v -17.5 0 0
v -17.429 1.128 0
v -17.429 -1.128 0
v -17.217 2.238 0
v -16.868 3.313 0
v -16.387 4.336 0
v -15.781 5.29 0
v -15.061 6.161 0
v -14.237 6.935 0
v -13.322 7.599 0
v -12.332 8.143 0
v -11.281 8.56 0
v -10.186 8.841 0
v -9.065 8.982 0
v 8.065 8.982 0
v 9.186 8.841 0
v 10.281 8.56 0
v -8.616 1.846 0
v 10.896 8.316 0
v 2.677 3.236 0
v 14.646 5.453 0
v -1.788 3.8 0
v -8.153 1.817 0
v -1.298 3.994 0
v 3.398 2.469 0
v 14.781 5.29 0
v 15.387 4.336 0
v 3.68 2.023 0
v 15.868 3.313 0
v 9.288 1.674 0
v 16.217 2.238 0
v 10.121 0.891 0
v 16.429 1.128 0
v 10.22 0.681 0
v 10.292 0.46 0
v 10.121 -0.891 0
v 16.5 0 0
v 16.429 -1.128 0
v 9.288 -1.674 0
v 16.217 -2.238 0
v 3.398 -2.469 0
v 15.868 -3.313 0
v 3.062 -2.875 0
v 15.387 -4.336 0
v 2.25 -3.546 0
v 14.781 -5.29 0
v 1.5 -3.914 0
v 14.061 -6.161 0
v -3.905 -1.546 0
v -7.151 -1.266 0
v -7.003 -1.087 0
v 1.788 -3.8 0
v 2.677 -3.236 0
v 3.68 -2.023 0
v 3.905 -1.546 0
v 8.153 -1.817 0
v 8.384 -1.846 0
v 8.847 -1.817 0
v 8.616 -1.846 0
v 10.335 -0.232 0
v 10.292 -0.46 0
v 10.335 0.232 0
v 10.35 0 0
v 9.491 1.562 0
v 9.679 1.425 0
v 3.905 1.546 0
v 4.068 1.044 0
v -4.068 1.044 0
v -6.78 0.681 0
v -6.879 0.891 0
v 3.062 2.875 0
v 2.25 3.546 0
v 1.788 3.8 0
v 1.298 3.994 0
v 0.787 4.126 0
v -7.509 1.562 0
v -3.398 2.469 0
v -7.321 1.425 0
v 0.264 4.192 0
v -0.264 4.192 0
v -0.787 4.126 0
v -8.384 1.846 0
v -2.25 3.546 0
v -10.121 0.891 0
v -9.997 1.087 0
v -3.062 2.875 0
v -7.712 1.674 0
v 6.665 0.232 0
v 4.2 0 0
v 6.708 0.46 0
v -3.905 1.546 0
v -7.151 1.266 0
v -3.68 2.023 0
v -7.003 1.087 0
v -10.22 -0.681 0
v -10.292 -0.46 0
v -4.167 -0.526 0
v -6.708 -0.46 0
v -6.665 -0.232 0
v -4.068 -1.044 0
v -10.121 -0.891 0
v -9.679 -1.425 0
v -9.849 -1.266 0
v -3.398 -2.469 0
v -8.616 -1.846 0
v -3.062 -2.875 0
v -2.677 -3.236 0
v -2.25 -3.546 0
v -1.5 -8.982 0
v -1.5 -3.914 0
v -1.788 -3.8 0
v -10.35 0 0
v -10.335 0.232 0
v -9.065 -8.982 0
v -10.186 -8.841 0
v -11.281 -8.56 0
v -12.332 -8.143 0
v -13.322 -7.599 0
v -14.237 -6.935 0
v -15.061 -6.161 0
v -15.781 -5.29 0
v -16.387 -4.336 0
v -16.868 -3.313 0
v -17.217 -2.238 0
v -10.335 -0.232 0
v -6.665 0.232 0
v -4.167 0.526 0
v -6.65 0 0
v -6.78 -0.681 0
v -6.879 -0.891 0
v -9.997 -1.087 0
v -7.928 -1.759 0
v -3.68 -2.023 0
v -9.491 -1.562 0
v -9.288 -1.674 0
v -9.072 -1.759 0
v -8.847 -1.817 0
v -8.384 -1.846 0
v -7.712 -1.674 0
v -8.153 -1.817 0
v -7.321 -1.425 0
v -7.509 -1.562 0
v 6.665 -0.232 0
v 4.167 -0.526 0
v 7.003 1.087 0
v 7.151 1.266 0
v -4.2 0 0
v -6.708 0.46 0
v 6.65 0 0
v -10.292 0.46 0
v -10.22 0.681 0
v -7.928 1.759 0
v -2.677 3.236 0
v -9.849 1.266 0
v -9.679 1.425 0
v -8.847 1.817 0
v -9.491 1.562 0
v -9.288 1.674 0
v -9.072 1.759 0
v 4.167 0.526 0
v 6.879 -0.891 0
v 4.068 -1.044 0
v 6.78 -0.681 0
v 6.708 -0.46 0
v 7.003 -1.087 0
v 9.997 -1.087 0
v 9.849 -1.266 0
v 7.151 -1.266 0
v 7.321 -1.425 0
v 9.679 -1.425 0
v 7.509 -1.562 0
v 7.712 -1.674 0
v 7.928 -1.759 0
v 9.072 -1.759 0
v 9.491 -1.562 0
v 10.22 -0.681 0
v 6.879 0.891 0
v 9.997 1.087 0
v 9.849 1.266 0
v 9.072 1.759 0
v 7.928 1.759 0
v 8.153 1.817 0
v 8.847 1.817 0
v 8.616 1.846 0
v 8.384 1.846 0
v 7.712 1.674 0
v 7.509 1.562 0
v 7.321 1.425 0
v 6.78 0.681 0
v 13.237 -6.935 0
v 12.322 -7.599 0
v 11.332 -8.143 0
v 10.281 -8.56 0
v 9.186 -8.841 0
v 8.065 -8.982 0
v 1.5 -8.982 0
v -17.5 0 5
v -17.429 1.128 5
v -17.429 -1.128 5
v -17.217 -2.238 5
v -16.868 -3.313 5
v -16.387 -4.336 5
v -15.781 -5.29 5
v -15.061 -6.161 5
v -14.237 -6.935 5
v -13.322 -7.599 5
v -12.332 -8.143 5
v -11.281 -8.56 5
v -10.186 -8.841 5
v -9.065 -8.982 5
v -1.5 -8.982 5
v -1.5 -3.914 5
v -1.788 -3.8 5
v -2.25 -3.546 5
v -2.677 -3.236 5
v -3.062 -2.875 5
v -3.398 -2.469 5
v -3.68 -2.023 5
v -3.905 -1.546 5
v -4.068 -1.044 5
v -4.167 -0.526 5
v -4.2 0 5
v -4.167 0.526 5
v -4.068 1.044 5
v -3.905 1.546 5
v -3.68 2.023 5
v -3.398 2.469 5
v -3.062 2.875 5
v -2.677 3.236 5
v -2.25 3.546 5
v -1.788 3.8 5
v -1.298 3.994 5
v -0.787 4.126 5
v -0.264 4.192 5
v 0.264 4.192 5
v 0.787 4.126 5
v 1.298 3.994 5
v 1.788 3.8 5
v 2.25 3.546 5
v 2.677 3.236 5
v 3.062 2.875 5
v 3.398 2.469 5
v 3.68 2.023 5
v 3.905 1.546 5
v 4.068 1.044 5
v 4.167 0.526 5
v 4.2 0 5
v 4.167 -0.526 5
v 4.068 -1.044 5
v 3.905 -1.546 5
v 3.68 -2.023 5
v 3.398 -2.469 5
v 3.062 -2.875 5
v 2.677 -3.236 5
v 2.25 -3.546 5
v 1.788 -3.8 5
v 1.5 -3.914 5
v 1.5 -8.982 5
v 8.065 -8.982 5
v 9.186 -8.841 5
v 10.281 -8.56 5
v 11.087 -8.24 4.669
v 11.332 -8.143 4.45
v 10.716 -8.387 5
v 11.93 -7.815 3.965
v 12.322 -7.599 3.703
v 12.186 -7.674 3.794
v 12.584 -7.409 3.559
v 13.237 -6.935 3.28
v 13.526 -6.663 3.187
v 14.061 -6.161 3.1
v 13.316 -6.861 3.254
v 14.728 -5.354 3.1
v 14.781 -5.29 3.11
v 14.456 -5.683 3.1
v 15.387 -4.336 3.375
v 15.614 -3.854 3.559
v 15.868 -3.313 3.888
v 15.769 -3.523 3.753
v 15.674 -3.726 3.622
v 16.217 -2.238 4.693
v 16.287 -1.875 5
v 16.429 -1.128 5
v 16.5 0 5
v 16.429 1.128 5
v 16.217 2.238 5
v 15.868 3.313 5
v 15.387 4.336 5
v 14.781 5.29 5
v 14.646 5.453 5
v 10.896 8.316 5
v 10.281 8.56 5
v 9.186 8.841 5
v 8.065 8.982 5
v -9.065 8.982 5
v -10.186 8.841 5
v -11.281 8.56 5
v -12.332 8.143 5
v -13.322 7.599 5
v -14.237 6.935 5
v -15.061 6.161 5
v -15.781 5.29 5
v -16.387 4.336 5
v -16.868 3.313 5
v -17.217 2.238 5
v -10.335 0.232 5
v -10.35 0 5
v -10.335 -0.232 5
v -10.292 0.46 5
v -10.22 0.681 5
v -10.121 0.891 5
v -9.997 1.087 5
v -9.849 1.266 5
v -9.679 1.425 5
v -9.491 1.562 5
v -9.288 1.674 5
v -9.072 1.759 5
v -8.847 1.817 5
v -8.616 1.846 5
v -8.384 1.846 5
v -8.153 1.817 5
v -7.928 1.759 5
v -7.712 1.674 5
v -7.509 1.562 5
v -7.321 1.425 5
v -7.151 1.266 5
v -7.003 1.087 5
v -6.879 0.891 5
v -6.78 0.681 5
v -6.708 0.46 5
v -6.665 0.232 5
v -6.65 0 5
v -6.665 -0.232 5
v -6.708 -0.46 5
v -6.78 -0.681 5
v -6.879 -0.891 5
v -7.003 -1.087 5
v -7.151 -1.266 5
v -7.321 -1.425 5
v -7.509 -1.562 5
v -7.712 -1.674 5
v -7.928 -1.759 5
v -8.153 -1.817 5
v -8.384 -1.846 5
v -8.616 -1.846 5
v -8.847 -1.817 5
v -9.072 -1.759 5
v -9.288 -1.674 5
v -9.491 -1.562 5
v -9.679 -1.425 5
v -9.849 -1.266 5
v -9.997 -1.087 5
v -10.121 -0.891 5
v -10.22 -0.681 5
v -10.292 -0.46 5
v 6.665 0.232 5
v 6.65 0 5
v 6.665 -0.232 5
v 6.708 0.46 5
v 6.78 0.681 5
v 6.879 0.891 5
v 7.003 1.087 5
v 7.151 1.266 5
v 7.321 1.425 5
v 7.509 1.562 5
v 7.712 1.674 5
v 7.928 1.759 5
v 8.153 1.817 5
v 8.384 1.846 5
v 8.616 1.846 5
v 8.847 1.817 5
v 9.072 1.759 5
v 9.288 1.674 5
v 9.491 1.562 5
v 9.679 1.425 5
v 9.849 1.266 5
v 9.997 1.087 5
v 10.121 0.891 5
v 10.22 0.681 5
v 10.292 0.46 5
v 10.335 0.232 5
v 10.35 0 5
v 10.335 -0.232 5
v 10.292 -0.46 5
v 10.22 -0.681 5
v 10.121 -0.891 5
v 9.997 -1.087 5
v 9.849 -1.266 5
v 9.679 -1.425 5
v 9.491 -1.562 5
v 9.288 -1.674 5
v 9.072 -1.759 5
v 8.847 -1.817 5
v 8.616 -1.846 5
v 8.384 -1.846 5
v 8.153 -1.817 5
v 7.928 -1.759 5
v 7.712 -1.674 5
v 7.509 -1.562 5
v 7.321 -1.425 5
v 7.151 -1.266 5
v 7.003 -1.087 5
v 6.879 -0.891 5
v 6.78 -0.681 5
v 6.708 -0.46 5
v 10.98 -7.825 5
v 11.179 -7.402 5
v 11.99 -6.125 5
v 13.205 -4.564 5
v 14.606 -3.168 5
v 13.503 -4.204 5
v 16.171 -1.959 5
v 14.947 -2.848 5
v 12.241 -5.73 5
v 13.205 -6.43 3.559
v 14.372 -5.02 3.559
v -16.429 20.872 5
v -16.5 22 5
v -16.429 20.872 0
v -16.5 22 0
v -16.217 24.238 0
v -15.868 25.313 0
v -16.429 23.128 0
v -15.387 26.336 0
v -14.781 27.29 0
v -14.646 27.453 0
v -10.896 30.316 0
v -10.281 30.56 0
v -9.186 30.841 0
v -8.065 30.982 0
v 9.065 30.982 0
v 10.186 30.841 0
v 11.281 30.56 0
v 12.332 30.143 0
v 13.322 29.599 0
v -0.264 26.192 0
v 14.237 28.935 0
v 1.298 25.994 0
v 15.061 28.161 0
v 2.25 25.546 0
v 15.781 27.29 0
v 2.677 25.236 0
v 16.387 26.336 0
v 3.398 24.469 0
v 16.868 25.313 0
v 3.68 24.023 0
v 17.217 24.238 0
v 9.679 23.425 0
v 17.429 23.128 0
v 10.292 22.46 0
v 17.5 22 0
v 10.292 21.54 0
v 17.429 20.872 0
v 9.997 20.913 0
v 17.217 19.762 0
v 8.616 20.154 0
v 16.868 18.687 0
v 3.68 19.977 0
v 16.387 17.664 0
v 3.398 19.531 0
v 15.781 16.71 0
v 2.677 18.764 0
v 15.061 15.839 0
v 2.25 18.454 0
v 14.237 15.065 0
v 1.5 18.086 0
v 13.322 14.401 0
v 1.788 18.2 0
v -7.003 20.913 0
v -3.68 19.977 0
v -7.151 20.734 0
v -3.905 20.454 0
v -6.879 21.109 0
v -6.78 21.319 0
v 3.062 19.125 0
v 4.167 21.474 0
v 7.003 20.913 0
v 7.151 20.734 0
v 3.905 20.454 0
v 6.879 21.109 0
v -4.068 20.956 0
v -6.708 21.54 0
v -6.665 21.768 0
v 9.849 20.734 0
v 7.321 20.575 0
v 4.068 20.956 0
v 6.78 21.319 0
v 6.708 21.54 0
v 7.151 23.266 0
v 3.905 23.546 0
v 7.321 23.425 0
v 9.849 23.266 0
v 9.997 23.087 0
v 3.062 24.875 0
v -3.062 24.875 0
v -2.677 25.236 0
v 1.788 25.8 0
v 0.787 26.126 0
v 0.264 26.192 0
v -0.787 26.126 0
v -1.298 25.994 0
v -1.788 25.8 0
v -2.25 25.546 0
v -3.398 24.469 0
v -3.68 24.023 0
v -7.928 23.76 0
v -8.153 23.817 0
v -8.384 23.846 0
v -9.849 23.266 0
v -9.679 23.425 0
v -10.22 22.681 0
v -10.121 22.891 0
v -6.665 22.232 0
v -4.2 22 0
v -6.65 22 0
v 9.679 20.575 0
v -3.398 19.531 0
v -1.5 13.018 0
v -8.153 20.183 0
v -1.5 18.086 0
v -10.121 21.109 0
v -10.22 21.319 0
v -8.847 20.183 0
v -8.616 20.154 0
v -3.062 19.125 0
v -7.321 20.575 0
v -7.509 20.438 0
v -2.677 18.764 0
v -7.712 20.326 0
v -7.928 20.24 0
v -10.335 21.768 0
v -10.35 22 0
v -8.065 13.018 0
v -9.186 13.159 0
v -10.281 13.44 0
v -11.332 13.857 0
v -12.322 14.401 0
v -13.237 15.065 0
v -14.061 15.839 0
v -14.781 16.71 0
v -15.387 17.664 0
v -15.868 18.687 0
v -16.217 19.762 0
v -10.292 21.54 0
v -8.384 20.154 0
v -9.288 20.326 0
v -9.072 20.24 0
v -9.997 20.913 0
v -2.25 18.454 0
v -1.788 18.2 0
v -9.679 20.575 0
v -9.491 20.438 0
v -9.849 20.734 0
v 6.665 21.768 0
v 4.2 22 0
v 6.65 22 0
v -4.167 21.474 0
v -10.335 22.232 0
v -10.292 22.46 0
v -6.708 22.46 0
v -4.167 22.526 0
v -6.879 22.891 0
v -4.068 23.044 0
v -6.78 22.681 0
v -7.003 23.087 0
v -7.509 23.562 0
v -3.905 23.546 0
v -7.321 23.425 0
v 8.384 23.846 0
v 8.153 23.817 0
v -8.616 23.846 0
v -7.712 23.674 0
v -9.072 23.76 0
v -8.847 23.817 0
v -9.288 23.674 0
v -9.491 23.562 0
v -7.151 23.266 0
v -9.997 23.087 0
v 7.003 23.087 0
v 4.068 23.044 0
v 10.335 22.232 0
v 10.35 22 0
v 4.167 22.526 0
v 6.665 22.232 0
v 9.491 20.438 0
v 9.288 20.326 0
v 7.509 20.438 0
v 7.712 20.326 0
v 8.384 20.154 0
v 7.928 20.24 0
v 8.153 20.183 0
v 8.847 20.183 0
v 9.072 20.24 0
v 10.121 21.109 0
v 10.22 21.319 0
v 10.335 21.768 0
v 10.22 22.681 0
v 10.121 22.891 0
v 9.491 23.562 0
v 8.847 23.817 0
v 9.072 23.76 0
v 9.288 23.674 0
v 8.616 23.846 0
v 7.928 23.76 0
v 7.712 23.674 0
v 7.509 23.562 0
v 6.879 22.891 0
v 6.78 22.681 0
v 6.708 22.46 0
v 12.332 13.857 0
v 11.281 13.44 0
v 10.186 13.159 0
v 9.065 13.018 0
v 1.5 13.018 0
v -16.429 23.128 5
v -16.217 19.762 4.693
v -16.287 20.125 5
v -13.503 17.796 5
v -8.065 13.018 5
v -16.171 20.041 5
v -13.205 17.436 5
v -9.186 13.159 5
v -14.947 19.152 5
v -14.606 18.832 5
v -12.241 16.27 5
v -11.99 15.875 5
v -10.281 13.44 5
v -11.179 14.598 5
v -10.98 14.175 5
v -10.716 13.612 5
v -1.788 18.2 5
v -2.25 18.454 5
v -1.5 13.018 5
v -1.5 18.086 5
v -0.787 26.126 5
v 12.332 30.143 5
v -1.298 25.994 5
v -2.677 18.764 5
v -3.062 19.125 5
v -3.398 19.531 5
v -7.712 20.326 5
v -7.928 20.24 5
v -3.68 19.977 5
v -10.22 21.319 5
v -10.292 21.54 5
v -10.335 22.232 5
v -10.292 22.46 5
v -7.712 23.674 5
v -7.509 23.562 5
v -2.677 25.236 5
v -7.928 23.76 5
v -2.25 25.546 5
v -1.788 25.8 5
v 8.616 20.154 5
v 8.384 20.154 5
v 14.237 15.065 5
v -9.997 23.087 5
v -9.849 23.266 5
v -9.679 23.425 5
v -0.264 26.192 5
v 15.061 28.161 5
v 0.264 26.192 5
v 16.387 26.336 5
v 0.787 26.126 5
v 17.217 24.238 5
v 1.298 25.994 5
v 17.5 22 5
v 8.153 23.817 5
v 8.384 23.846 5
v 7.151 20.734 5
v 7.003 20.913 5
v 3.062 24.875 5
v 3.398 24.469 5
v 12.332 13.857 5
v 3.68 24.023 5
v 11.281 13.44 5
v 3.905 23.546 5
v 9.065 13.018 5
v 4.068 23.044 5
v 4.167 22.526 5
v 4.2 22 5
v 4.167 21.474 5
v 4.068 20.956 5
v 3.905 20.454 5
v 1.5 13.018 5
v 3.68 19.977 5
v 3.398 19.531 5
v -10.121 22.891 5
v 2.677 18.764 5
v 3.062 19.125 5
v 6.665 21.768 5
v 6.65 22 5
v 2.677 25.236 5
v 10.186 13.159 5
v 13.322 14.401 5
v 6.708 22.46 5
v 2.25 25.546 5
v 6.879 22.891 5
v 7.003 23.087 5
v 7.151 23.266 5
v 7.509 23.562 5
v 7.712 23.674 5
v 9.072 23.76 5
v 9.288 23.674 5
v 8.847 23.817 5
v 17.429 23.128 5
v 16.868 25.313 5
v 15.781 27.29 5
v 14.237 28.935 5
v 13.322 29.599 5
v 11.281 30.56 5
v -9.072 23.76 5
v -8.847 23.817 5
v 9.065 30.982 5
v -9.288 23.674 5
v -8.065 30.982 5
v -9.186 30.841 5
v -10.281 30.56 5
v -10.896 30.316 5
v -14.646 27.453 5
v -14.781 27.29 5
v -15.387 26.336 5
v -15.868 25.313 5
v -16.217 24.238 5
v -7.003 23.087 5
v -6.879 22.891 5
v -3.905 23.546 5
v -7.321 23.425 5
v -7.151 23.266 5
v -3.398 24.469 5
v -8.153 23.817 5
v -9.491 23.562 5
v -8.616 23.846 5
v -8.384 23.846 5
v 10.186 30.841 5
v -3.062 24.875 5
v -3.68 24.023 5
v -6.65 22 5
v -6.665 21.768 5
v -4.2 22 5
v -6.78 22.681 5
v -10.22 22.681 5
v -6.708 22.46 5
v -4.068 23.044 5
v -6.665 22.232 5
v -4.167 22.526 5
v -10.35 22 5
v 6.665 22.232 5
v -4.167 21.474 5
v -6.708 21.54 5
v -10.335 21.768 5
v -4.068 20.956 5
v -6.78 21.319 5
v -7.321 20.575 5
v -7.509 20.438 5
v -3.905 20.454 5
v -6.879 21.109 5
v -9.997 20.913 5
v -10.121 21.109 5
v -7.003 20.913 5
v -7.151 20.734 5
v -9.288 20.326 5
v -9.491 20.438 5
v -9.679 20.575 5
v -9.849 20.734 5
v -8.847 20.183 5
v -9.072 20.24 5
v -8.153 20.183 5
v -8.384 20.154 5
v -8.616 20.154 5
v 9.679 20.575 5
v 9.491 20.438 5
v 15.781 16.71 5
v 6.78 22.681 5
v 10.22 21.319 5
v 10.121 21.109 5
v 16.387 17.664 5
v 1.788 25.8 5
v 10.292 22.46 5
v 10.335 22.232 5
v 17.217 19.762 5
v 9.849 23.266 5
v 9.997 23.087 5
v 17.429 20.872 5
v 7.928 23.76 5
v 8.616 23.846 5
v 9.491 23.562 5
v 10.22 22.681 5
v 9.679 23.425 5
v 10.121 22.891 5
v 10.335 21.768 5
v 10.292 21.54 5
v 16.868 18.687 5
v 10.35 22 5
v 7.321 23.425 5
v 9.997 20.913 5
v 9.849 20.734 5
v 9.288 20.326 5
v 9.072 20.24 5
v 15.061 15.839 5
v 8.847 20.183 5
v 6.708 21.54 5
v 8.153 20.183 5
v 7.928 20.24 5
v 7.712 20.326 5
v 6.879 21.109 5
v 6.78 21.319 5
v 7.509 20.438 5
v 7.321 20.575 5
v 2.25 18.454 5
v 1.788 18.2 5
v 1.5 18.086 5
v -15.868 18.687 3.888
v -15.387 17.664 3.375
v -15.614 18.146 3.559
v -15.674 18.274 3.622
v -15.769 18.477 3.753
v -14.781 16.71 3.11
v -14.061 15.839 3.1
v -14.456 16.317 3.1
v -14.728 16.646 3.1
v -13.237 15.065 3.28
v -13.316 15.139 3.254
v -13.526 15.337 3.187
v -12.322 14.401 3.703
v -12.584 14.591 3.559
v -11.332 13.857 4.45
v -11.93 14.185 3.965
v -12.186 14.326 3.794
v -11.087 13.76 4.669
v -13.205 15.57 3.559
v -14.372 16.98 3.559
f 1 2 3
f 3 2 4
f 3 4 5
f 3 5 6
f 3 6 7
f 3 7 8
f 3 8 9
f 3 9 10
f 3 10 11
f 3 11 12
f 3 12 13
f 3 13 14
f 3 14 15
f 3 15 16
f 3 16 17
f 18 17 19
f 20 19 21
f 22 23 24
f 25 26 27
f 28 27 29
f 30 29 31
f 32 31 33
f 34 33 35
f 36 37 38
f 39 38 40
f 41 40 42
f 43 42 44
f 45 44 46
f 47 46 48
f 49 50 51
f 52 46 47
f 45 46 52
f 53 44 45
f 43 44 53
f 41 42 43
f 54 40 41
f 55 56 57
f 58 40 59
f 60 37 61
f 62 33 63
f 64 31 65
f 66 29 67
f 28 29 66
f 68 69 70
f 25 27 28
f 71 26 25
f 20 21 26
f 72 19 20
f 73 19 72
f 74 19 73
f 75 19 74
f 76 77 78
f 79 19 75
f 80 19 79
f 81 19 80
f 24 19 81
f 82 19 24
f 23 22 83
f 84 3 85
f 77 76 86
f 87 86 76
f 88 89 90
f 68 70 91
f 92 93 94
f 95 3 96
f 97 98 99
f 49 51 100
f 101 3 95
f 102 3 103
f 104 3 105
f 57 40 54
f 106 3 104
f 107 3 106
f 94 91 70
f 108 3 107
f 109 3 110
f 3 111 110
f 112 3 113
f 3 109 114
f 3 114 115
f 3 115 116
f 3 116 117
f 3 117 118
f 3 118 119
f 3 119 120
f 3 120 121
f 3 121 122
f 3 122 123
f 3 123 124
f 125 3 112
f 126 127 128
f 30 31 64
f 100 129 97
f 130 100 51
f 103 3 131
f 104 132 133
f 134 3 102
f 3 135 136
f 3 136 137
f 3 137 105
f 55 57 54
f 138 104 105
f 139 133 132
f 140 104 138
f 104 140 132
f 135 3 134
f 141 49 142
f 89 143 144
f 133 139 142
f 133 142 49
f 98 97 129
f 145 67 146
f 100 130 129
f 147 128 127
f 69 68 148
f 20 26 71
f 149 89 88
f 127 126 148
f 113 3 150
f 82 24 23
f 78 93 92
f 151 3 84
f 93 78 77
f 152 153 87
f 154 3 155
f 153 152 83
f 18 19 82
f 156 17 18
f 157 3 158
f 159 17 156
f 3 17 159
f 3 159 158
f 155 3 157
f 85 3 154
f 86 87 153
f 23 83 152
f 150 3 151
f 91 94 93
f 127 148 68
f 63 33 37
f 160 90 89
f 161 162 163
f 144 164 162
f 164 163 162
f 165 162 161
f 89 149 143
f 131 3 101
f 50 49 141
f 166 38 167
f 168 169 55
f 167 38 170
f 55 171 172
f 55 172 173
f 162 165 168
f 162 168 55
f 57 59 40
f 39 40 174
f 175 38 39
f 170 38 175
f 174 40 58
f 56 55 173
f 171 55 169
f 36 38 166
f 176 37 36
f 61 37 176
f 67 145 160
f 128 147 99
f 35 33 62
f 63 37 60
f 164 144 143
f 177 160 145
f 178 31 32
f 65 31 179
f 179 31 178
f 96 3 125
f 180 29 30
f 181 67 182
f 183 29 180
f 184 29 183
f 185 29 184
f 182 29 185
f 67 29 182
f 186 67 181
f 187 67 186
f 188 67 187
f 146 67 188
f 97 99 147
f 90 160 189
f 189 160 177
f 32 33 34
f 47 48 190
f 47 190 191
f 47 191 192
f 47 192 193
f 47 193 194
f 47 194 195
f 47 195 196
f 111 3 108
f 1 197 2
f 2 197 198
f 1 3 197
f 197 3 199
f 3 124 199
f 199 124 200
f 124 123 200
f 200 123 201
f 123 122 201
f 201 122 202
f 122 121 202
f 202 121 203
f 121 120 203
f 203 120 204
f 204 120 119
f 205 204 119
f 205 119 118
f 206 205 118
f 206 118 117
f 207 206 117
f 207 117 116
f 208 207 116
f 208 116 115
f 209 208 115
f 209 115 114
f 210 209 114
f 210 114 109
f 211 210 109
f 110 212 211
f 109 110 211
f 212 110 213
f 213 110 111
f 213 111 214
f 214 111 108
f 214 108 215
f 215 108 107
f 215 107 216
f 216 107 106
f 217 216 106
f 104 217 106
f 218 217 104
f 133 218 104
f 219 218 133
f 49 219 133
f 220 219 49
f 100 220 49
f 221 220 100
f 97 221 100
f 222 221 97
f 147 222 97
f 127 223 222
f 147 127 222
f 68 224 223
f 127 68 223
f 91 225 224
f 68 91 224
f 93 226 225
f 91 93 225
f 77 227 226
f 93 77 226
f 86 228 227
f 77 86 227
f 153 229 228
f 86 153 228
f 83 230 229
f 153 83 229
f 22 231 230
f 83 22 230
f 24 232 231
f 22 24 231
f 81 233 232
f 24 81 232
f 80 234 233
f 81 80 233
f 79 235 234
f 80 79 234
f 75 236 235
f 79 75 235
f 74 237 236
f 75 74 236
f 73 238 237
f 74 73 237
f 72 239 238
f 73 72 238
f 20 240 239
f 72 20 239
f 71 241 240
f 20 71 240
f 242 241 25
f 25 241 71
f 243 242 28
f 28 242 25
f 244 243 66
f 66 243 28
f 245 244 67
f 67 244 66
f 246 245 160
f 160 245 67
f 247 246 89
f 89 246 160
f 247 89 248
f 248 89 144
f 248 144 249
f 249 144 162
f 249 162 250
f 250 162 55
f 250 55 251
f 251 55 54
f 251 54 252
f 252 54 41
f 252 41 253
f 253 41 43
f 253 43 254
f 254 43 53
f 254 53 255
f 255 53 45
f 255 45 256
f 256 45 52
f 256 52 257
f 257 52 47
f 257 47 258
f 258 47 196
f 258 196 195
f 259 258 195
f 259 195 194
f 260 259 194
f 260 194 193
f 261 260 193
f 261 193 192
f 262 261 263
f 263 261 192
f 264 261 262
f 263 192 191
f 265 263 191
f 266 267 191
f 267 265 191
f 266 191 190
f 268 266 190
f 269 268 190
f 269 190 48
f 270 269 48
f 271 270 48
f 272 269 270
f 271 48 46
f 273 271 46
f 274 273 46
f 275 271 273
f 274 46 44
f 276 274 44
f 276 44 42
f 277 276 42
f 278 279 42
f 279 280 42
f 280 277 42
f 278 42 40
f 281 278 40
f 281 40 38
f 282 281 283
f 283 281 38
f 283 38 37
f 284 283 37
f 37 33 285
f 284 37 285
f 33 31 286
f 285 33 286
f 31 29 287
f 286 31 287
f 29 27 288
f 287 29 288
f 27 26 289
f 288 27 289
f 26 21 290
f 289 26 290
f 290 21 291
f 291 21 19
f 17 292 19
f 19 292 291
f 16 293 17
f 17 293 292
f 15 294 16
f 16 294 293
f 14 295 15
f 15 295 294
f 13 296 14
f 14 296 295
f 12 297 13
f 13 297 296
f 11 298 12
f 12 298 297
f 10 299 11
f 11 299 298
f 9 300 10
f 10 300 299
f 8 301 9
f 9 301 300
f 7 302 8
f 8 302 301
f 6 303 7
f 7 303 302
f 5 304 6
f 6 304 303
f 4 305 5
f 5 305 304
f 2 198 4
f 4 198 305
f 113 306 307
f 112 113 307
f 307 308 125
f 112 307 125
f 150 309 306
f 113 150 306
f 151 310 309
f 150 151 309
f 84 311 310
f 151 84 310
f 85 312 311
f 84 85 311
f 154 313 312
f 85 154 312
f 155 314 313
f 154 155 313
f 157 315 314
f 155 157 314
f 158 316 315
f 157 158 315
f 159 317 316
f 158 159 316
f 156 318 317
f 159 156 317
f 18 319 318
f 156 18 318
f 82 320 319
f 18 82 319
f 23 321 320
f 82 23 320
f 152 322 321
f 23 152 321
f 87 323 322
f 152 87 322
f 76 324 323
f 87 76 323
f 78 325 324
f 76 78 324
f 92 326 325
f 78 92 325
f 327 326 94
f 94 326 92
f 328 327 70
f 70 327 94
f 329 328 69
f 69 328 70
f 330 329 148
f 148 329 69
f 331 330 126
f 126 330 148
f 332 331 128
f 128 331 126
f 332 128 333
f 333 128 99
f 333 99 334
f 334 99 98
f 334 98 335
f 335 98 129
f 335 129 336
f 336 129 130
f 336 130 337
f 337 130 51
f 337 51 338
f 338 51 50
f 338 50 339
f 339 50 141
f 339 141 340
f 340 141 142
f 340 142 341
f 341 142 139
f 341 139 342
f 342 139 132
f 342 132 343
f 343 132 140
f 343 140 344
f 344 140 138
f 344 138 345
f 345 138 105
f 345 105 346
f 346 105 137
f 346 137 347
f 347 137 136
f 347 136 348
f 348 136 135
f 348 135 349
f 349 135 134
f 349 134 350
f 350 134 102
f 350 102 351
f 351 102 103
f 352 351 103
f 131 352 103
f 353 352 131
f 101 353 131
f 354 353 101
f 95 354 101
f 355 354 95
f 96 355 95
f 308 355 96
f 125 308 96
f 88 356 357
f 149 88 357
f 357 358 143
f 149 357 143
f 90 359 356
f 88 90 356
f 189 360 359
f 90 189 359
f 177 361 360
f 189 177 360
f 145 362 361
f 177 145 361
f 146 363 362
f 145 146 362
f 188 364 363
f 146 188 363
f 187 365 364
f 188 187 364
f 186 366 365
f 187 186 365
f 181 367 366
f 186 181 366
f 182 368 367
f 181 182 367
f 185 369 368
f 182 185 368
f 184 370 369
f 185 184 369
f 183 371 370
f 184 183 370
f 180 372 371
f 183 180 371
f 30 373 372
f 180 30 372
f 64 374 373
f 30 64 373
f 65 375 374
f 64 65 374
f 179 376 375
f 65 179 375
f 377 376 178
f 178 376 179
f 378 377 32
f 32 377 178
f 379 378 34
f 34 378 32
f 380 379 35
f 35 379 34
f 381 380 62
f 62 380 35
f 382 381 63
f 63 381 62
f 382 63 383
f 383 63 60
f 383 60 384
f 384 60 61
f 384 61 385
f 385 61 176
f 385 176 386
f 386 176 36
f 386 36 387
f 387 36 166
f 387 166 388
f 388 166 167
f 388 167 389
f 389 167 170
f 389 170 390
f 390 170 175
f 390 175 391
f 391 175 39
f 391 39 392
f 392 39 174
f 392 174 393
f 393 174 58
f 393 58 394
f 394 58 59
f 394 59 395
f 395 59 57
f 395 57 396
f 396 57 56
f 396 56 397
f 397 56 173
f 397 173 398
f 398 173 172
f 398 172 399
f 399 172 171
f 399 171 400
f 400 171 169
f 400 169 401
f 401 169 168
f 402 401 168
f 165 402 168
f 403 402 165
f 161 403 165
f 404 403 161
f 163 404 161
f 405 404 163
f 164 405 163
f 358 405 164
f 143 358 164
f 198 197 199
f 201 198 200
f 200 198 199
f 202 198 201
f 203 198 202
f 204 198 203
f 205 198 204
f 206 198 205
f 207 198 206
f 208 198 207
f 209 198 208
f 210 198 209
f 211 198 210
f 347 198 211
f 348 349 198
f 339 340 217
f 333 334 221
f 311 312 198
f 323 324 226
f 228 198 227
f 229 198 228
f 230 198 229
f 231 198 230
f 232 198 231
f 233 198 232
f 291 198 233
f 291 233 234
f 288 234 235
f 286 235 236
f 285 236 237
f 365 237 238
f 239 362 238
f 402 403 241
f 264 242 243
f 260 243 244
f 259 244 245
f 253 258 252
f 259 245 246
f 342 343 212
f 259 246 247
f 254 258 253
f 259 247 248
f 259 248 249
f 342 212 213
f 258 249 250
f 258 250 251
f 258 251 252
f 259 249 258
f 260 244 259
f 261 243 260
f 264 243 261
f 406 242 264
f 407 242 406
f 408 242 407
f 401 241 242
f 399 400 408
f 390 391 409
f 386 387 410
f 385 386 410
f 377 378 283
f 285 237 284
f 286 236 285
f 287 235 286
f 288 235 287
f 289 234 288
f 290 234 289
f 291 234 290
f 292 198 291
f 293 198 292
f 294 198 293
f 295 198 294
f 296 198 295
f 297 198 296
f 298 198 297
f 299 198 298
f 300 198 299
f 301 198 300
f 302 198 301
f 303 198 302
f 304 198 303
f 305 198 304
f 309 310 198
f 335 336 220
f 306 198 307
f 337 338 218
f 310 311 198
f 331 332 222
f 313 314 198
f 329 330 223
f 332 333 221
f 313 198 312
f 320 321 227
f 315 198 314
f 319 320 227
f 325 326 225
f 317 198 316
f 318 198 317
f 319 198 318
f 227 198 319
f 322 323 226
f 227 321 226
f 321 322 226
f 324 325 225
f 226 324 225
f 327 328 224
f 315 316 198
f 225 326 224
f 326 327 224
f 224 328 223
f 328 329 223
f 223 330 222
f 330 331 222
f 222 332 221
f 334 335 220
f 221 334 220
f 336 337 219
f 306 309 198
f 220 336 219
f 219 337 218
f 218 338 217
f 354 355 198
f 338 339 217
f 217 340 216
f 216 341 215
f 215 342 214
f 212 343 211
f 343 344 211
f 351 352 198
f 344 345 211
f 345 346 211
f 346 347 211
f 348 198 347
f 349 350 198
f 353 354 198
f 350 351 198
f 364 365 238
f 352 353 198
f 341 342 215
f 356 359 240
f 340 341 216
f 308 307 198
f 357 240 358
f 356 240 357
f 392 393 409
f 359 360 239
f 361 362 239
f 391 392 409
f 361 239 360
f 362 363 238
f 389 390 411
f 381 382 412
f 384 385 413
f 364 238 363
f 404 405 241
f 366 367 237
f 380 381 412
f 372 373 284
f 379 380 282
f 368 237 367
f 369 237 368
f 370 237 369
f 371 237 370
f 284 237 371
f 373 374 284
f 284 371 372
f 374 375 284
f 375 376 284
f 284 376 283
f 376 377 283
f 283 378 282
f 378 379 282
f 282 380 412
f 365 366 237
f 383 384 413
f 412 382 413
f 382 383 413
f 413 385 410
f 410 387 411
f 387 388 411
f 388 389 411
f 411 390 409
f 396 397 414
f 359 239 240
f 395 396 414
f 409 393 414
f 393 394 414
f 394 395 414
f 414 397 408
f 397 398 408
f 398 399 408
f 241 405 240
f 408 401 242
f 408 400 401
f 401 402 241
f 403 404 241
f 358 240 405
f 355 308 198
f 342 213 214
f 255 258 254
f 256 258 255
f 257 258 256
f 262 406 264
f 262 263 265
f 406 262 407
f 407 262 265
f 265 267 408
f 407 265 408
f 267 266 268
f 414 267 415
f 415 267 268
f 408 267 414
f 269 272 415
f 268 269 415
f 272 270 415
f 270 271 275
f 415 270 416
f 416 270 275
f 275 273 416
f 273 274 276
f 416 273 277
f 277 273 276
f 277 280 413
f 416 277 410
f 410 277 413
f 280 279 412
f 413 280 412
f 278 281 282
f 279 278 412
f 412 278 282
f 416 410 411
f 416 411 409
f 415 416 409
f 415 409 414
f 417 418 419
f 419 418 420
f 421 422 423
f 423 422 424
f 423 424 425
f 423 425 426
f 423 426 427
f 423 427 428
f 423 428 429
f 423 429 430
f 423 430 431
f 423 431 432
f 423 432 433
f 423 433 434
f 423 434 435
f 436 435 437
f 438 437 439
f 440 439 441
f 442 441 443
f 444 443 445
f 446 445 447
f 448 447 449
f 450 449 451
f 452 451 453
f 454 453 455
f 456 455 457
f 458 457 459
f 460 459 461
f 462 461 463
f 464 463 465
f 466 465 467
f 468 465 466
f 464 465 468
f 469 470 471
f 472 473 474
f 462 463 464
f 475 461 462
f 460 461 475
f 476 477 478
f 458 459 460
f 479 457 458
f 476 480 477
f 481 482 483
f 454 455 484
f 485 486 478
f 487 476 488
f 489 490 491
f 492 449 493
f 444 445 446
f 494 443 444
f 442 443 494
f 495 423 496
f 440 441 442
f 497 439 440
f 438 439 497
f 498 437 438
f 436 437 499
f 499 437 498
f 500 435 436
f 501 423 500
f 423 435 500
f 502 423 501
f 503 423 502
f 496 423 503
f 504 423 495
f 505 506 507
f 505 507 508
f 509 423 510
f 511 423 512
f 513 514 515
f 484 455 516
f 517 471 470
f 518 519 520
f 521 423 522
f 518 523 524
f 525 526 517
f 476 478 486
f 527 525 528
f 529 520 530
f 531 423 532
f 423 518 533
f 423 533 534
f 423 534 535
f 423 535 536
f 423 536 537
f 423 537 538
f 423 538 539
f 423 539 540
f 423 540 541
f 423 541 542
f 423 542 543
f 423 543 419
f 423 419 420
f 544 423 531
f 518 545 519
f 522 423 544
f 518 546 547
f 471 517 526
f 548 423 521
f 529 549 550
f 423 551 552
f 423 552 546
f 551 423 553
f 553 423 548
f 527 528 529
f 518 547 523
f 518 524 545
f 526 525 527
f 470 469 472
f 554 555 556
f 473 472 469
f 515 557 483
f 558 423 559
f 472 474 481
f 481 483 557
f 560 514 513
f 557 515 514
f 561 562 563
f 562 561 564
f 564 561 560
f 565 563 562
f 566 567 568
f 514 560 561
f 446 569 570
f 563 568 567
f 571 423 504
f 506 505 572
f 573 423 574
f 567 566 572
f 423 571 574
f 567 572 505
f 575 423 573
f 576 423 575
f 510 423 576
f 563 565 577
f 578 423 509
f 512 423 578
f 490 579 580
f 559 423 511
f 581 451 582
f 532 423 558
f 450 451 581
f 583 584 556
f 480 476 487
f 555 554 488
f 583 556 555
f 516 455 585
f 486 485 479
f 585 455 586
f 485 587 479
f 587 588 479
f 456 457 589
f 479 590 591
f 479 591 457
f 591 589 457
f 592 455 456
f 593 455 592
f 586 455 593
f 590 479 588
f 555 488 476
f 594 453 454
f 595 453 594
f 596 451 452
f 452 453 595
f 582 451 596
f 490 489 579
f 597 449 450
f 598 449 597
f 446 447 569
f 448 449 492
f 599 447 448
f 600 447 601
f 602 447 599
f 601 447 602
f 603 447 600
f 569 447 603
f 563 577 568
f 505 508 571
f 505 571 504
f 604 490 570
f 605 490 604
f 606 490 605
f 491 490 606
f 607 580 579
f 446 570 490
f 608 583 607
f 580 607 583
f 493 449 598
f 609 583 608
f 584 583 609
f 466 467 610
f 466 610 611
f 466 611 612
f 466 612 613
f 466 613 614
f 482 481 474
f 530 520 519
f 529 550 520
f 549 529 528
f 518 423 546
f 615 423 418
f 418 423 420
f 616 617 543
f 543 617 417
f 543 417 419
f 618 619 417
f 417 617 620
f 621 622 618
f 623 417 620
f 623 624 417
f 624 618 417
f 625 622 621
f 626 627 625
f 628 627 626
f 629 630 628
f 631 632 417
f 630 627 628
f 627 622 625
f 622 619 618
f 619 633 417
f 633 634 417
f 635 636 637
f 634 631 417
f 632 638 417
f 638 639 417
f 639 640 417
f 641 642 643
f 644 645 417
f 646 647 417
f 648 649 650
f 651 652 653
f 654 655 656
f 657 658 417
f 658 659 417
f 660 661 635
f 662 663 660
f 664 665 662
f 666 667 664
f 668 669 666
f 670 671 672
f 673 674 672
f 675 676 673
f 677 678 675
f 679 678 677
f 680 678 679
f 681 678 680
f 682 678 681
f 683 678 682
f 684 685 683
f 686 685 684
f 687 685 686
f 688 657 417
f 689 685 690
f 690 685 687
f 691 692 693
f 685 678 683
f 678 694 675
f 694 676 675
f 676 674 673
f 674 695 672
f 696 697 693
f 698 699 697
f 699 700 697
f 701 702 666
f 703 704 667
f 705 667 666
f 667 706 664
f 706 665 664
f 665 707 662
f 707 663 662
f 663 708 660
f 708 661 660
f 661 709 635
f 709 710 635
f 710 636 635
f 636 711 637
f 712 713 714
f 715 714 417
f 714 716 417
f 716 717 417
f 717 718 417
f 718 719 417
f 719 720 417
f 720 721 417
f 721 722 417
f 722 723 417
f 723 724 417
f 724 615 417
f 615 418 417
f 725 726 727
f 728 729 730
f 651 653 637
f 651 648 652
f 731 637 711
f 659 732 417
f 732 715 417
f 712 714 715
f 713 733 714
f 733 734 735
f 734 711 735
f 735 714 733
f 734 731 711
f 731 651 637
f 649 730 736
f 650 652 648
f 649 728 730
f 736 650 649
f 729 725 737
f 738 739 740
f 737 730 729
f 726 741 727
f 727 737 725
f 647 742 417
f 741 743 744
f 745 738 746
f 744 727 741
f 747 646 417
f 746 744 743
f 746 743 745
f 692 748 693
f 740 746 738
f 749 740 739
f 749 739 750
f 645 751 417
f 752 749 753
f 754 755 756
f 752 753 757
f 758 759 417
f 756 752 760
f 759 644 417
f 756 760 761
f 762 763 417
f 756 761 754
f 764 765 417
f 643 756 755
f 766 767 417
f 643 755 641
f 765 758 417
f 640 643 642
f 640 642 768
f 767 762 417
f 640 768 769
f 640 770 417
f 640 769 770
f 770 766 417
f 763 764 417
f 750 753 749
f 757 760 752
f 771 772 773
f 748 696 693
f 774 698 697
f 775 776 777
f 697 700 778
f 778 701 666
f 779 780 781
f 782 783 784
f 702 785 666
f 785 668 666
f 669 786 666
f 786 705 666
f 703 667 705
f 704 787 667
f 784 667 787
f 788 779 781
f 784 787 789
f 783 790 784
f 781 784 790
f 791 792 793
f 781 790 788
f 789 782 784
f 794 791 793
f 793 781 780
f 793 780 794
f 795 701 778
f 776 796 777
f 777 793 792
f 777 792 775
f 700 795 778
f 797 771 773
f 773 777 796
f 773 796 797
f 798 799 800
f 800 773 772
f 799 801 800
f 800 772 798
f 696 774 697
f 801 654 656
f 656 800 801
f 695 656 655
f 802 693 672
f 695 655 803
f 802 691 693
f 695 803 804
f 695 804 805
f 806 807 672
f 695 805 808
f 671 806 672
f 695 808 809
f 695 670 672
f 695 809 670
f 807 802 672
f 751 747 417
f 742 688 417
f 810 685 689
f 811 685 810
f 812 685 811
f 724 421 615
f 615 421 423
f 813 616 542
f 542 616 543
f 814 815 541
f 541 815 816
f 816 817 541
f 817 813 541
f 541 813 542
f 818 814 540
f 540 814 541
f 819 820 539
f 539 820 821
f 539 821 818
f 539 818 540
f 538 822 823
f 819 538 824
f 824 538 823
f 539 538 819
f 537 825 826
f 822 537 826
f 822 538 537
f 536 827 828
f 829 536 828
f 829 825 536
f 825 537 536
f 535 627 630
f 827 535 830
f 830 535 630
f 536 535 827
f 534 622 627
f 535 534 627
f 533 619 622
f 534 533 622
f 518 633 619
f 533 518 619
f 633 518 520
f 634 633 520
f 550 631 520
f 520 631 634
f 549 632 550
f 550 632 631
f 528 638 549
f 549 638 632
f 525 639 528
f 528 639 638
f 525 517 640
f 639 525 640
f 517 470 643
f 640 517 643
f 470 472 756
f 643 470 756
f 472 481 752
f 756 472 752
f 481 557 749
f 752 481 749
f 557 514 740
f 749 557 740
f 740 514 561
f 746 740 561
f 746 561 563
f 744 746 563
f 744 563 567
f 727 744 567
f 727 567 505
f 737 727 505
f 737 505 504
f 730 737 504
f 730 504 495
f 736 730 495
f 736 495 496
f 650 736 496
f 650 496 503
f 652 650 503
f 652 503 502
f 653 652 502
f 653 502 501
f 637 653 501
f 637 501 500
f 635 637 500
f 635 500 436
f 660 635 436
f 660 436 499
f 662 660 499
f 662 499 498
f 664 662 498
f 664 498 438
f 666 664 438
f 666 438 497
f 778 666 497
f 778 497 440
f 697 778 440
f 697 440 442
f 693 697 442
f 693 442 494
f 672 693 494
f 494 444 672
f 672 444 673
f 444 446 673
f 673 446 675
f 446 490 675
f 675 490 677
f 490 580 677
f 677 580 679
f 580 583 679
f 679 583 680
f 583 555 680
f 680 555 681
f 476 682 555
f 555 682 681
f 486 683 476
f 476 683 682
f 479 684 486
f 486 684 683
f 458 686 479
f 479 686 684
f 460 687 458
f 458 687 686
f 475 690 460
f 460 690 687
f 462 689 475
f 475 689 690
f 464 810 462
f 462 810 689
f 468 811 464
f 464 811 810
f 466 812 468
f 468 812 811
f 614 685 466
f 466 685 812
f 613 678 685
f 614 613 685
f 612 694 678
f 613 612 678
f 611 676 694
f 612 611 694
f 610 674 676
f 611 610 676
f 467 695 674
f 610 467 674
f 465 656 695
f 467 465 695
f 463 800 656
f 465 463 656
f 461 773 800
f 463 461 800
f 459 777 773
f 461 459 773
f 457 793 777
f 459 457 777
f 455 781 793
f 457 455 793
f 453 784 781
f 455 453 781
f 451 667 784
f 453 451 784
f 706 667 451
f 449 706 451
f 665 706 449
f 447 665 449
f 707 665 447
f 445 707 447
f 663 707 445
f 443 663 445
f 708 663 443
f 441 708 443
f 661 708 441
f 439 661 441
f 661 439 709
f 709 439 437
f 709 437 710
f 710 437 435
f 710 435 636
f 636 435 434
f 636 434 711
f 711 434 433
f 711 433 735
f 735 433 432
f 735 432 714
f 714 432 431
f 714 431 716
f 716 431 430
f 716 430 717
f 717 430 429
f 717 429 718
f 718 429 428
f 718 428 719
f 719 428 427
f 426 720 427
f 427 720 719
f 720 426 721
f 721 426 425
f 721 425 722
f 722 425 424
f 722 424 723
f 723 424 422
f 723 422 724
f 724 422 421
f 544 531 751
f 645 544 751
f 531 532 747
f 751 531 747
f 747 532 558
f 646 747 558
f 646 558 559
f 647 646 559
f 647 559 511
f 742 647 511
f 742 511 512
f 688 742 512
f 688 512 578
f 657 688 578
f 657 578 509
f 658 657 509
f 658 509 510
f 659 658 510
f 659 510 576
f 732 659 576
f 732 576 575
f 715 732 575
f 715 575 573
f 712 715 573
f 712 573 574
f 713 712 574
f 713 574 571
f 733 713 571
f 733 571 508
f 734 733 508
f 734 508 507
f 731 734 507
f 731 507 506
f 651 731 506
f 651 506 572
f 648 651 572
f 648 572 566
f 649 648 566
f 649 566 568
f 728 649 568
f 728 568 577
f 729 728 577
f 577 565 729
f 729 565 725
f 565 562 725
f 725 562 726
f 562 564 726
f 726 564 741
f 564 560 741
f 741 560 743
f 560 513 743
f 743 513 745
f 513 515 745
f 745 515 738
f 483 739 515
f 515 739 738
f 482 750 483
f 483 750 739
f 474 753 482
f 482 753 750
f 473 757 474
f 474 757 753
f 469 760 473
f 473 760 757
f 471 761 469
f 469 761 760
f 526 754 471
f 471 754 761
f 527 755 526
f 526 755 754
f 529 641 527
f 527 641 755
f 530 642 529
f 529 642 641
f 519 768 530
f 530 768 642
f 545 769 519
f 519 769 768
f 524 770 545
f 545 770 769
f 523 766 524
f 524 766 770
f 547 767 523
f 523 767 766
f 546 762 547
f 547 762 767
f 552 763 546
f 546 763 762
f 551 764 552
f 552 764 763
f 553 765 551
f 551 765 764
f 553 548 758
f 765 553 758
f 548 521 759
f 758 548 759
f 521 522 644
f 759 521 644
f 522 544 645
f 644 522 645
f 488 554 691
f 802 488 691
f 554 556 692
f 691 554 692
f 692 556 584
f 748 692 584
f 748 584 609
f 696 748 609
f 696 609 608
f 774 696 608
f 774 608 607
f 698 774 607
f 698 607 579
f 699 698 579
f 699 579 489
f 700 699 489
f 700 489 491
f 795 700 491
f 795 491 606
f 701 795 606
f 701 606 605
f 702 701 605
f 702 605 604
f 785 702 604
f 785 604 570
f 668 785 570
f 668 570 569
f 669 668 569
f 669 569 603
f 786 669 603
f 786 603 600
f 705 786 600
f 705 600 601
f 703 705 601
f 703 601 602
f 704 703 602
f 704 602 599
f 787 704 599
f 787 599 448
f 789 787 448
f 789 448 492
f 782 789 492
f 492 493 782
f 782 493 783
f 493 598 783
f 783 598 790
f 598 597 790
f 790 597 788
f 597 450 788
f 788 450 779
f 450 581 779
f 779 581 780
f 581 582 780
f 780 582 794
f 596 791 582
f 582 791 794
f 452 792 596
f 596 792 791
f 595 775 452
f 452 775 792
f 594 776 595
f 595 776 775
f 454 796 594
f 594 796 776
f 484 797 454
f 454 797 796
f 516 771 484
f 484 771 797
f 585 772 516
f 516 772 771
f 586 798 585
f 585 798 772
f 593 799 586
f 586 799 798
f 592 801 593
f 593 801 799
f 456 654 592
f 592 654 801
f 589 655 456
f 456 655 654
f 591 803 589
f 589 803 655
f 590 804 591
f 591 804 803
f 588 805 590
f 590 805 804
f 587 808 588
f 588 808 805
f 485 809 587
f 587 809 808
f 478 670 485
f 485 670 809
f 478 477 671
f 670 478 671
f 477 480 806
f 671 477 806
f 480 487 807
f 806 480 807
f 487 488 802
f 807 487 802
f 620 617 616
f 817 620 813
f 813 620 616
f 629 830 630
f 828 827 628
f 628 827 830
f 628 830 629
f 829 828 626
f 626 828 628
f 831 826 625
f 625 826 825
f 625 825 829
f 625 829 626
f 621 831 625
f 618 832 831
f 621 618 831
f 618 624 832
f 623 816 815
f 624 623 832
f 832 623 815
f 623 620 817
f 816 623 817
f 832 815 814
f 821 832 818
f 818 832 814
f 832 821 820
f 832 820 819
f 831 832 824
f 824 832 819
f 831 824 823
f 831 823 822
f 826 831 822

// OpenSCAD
$fn=50;

def_h=5;
cable=true;		//true vs false

cale(def_h);
translate([0, 22, 0]) mirror([1, 0, 0]) cale(def_h);

module cale()
{
	difference()
	{
		cale_plain(def_h);
		cale_void(def_h);
	}
}

module cale_plain(h)
{
	hull()
	{
		translate([-17/2, 0, 0]) cylinder(r=18/2, h=h);
		translate([15/2, 0, 0]) cylinder(r=18/2, h=h);
	}
}

module cale_void(h)
{
	for(i=[-1,1])
	{
		translate([i*17/2, 0, -0.05]) cylinder(r=3.7/2, h=h+.1);
	}
	translate([0, 0, -0.05])
	{
		cylinder(r=8.4/2, h=h+.1);
		linear_extrude(height=h+.1) polygon([[10, 9], [16.55, 4], [17, 5], [17, 10]]);
	}
	translate([25, -15, 12.25+h]) sphere(r=20, center=true);
	
	if(cable)
	{
		translate([0, -6.5, (h+.05)/2]) cube([3, 6, h+.1], true);
	}
}
